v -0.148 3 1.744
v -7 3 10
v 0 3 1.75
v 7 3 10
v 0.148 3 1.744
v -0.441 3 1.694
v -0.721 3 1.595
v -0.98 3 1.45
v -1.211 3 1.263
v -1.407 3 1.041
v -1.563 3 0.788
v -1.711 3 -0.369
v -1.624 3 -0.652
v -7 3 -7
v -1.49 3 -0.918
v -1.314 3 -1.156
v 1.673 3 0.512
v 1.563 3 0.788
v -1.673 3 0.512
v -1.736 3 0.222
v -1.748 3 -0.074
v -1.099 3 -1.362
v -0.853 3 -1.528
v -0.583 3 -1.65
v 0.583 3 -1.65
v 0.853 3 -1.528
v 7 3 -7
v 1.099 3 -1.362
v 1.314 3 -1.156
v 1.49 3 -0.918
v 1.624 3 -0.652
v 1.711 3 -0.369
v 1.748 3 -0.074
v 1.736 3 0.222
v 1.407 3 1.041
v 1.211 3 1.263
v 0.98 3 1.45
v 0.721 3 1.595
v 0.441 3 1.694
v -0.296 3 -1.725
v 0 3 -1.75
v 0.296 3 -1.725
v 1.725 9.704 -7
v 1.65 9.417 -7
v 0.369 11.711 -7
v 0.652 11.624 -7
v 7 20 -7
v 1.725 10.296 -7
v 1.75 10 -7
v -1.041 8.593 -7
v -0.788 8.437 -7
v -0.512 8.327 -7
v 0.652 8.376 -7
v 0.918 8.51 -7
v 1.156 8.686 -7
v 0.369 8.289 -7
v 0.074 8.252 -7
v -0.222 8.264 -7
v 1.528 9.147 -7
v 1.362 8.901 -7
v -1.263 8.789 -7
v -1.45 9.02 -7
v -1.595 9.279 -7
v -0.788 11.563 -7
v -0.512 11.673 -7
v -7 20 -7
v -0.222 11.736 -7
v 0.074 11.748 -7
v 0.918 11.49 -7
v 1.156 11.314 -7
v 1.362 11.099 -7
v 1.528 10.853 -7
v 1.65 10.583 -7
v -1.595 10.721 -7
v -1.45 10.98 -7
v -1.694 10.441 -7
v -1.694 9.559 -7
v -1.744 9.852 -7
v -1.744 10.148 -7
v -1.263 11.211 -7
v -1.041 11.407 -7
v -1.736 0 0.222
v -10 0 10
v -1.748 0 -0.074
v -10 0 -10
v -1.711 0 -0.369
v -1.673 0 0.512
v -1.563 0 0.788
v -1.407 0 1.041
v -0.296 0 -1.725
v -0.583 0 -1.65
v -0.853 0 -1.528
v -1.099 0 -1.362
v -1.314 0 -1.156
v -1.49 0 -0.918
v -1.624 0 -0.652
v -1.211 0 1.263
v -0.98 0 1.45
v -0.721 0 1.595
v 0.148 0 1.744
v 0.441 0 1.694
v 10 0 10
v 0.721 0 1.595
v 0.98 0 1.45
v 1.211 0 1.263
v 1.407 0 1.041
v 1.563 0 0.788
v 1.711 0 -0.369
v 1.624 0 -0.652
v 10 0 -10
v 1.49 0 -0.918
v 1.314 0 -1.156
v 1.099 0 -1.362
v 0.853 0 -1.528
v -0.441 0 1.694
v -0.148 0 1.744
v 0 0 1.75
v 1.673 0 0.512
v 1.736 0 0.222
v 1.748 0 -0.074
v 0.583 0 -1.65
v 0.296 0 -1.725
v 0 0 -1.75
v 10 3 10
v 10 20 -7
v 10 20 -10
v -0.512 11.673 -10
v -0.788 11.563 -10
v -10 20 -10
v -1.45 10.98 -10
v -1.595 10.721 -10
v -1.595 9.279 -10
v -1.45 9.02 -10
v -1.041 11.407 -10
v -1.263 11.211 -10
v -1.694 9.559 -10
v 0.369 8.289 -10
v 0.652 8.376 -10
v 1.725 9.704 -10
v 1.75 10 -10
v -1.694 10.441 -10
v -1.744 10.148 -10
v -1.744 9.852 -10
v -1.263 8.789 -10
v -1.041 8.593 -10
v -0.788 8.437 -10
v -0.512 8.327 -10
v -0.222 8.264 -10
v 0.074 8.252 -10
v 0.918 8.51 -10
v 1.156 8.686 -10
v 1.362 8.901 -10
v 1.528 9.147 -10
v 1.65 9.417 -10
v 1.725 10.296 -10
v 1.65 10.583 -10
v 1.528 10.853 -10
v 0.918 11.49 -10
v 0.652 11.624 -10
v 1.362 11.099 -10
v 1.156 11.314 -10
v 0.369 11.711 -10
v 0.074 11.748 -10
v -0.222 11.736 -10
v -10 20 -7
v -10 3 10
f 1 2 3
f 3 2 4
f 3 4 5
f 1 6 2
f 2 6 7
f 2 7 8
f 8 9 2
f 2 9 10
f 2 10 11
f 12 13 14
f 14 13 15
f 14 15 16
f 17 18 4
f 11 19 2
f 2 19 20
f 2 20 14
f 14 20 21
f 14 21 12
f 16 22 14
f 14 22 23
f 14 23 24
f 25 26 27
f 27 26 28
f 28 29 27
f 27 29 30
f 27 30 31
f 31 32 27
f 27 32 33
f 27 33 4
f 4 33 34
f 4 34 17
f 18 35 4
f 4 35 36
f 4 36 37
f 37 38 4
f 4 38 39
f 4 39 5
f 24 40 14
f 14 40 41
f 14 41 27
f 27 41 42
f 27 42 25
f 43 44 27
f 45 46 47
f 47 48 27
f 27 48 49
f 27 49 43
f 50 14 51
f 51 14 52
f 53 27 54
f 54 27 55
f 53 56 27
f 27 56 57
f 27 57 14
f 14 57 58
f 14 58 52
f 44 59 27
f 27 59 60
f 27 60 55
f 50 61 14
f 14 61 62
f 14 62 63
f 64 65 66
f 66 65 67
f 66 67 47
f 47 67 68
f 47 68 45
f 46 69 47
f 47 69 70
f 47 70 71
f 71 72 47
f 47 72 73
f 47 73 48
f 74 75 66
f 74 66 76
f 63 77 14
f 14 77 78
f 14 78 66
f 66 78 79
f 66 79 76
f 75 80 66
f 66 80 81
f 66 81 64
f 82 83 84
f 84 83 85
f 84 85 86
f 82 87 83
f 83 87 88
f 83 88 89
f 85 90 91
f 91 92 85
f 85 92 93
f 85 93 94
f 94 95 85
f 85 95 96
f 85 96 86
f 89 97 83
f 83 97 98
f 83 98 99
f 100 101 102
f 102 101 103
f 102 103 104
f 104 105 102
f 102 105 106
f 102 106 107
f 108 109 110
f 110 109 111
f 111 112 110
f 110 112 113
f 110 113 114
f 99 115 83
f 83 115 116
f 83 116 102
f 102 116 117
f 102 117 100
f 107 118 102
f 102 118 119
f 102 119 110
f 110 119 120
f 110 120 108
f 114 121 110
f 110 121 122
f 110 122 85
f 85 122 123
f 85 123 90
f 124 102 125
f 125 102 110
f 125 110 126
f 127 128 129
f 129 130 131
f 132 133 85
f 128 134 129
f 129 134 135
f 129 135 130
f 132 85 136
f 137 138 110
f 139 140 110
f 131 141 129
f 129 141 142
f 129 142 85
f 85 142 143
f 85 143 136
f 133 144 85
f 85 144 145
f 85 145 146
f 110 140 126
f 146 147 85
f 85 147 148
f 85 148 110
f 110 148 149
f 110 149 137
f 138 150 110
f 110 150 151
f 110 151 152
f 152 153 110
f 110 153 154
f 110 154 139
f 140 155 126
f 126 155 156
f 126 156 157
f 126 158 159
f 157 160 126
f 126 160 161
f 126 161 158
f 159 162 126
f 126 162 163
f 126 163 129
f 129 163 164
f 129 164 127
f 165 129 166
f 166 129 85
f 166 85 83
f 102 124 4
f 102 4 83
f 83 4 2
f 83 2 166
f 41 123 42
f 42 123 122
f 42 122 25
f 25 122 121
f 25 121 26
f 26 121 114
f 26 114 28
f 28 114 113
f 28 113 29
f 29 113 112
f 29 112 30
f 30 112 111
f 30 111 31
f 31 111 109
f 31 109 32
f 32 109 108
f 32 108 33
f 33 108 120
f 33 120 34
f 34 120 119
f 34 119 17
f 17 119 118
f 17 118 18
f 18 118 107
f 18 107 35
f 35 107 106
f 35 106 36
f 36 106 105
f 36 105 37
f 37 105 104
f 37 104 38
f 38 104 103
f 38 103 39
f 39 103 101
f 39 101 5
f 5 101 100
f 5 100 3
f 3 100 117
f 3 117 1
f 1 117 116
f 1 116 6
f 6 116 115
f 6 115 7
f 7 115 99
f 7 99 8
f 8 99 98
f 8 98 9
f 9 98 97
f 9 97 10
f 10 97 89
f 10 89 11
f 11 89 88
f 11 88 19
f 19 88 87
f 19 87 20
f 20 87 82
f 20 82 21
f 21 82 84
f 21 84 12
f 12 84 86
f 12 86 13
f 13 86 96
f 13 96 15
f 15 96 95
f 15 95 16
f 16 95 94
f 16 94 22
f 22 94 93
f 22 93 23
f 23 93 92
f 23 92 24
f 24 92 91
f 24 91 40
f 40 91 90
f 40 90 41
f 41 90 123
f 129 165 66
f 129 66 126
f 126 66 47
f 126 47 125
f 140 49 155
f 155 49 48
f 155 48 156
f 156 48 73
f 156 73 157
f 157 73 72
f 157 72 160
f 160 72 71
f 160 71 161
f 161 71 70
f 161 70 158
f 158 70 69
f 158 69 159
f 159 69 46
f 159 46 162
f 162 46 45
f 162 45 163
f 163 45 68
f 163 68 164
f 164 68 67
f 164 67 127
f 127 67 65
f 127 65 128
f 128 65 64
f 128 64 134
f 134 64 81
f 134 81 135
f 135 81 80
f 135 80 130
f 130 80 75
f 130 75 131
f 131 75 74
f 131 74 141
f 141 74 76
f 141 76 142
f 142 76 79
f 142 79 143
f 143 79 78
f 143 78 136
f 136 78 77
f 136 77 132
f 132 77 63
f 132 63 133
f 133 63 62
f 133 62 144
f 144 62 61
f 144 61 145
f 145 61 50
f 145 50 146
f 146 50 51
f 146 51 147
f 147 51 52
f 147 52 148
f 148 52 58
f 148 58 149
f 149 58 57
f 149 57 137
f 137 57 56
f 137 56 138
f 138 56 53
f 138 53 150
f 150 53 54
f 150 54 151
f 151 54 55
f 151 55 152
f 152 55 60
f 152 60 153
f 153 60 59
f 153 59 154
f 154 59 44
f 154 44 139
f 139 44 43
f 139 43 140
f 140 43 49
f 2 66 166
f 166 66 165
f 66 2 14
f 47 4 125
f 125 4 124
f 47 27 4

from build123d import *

# Parameters (mm, degrees)
SKETCH_1_W          = 20
SKETCH_1_H          = 20
SKETCH_1_R          = 1.75
EXTRUDE_1_DEPTH     = 3
SKETCH_2_W          = 20
SKETCH_2_H          = 3
EXTRUDE_2_DEPTH     = 17
SKETCH_3_R          = 1.75
CUT_EXTRUDE_1_DEPTH = 17
EXTRUDE_4_DEPTH     = 3
EXTRUDE_5_DEPTH     = 3


with BuildPart() as part:
    # Эскиз1 → Бобышка-Вытянуть1 (new body)
    with BuildSketch(Plane(origin=(0, 0, 0), x_dir=(1, 0, 0), z_dir=(0, 1, 0))):
        Rectangle(SKETCH_1_W, SKETCH_1_H)
        with Locations(Location((0, 0, 0), (0, 0, 270))):
            Circle(SKETCH_1_R, mode=Mode.SUBTRACT)
    extrude(amount=EXTRUDE_1_DEPTH)

    # Эскиз2 → Бобышка-Вытянуть2 (add)
    with BuildSketch(Plane(origin=(0, 3, 0), x_dir=(1, 0, 0), z_dir=(0, 1, 0))):
        with Locations((0, 8.5)):
            Rectangle(SKETCH_2_W, SKETCH_2_H)
    extrude(amount=EXTRUDE_2_DEPTH)

    # Эскиз3 → Вырез-Вытянуть1 (cut)
    with BuildSketch(Plane.XY.offset(-7)):
        with Locations((0, 10)):
            Circle(SKETCH_3_R)
    extrude(amount=-CUT_EXTRUDE_1_DEPTH, mode=Mode.SUBTRACT)

    # Эскиз4 → Бобышка-Вытянуть4 (add)
    with BuildSketch(Plane.ZY.offset(10)):
        Polygon((-7, 20), (10, 3), (-7, 3), align=None)
    extrude(amount=-EXTRUDE_4_DEPTH)

    # Эскиз5 → Бобышка-Вытянуть5 (add)
    with BuildSketch(Plane(origin=(10, 0, 0), x_dir=(0, 0, -1), z_dir=(1, 0, 0))):
        Polygon((7, 20), (7, 3), (-10, 3), align=None)
    extrude(amount=-EXTRUDE_5_DEPTH)


solid = part.part
